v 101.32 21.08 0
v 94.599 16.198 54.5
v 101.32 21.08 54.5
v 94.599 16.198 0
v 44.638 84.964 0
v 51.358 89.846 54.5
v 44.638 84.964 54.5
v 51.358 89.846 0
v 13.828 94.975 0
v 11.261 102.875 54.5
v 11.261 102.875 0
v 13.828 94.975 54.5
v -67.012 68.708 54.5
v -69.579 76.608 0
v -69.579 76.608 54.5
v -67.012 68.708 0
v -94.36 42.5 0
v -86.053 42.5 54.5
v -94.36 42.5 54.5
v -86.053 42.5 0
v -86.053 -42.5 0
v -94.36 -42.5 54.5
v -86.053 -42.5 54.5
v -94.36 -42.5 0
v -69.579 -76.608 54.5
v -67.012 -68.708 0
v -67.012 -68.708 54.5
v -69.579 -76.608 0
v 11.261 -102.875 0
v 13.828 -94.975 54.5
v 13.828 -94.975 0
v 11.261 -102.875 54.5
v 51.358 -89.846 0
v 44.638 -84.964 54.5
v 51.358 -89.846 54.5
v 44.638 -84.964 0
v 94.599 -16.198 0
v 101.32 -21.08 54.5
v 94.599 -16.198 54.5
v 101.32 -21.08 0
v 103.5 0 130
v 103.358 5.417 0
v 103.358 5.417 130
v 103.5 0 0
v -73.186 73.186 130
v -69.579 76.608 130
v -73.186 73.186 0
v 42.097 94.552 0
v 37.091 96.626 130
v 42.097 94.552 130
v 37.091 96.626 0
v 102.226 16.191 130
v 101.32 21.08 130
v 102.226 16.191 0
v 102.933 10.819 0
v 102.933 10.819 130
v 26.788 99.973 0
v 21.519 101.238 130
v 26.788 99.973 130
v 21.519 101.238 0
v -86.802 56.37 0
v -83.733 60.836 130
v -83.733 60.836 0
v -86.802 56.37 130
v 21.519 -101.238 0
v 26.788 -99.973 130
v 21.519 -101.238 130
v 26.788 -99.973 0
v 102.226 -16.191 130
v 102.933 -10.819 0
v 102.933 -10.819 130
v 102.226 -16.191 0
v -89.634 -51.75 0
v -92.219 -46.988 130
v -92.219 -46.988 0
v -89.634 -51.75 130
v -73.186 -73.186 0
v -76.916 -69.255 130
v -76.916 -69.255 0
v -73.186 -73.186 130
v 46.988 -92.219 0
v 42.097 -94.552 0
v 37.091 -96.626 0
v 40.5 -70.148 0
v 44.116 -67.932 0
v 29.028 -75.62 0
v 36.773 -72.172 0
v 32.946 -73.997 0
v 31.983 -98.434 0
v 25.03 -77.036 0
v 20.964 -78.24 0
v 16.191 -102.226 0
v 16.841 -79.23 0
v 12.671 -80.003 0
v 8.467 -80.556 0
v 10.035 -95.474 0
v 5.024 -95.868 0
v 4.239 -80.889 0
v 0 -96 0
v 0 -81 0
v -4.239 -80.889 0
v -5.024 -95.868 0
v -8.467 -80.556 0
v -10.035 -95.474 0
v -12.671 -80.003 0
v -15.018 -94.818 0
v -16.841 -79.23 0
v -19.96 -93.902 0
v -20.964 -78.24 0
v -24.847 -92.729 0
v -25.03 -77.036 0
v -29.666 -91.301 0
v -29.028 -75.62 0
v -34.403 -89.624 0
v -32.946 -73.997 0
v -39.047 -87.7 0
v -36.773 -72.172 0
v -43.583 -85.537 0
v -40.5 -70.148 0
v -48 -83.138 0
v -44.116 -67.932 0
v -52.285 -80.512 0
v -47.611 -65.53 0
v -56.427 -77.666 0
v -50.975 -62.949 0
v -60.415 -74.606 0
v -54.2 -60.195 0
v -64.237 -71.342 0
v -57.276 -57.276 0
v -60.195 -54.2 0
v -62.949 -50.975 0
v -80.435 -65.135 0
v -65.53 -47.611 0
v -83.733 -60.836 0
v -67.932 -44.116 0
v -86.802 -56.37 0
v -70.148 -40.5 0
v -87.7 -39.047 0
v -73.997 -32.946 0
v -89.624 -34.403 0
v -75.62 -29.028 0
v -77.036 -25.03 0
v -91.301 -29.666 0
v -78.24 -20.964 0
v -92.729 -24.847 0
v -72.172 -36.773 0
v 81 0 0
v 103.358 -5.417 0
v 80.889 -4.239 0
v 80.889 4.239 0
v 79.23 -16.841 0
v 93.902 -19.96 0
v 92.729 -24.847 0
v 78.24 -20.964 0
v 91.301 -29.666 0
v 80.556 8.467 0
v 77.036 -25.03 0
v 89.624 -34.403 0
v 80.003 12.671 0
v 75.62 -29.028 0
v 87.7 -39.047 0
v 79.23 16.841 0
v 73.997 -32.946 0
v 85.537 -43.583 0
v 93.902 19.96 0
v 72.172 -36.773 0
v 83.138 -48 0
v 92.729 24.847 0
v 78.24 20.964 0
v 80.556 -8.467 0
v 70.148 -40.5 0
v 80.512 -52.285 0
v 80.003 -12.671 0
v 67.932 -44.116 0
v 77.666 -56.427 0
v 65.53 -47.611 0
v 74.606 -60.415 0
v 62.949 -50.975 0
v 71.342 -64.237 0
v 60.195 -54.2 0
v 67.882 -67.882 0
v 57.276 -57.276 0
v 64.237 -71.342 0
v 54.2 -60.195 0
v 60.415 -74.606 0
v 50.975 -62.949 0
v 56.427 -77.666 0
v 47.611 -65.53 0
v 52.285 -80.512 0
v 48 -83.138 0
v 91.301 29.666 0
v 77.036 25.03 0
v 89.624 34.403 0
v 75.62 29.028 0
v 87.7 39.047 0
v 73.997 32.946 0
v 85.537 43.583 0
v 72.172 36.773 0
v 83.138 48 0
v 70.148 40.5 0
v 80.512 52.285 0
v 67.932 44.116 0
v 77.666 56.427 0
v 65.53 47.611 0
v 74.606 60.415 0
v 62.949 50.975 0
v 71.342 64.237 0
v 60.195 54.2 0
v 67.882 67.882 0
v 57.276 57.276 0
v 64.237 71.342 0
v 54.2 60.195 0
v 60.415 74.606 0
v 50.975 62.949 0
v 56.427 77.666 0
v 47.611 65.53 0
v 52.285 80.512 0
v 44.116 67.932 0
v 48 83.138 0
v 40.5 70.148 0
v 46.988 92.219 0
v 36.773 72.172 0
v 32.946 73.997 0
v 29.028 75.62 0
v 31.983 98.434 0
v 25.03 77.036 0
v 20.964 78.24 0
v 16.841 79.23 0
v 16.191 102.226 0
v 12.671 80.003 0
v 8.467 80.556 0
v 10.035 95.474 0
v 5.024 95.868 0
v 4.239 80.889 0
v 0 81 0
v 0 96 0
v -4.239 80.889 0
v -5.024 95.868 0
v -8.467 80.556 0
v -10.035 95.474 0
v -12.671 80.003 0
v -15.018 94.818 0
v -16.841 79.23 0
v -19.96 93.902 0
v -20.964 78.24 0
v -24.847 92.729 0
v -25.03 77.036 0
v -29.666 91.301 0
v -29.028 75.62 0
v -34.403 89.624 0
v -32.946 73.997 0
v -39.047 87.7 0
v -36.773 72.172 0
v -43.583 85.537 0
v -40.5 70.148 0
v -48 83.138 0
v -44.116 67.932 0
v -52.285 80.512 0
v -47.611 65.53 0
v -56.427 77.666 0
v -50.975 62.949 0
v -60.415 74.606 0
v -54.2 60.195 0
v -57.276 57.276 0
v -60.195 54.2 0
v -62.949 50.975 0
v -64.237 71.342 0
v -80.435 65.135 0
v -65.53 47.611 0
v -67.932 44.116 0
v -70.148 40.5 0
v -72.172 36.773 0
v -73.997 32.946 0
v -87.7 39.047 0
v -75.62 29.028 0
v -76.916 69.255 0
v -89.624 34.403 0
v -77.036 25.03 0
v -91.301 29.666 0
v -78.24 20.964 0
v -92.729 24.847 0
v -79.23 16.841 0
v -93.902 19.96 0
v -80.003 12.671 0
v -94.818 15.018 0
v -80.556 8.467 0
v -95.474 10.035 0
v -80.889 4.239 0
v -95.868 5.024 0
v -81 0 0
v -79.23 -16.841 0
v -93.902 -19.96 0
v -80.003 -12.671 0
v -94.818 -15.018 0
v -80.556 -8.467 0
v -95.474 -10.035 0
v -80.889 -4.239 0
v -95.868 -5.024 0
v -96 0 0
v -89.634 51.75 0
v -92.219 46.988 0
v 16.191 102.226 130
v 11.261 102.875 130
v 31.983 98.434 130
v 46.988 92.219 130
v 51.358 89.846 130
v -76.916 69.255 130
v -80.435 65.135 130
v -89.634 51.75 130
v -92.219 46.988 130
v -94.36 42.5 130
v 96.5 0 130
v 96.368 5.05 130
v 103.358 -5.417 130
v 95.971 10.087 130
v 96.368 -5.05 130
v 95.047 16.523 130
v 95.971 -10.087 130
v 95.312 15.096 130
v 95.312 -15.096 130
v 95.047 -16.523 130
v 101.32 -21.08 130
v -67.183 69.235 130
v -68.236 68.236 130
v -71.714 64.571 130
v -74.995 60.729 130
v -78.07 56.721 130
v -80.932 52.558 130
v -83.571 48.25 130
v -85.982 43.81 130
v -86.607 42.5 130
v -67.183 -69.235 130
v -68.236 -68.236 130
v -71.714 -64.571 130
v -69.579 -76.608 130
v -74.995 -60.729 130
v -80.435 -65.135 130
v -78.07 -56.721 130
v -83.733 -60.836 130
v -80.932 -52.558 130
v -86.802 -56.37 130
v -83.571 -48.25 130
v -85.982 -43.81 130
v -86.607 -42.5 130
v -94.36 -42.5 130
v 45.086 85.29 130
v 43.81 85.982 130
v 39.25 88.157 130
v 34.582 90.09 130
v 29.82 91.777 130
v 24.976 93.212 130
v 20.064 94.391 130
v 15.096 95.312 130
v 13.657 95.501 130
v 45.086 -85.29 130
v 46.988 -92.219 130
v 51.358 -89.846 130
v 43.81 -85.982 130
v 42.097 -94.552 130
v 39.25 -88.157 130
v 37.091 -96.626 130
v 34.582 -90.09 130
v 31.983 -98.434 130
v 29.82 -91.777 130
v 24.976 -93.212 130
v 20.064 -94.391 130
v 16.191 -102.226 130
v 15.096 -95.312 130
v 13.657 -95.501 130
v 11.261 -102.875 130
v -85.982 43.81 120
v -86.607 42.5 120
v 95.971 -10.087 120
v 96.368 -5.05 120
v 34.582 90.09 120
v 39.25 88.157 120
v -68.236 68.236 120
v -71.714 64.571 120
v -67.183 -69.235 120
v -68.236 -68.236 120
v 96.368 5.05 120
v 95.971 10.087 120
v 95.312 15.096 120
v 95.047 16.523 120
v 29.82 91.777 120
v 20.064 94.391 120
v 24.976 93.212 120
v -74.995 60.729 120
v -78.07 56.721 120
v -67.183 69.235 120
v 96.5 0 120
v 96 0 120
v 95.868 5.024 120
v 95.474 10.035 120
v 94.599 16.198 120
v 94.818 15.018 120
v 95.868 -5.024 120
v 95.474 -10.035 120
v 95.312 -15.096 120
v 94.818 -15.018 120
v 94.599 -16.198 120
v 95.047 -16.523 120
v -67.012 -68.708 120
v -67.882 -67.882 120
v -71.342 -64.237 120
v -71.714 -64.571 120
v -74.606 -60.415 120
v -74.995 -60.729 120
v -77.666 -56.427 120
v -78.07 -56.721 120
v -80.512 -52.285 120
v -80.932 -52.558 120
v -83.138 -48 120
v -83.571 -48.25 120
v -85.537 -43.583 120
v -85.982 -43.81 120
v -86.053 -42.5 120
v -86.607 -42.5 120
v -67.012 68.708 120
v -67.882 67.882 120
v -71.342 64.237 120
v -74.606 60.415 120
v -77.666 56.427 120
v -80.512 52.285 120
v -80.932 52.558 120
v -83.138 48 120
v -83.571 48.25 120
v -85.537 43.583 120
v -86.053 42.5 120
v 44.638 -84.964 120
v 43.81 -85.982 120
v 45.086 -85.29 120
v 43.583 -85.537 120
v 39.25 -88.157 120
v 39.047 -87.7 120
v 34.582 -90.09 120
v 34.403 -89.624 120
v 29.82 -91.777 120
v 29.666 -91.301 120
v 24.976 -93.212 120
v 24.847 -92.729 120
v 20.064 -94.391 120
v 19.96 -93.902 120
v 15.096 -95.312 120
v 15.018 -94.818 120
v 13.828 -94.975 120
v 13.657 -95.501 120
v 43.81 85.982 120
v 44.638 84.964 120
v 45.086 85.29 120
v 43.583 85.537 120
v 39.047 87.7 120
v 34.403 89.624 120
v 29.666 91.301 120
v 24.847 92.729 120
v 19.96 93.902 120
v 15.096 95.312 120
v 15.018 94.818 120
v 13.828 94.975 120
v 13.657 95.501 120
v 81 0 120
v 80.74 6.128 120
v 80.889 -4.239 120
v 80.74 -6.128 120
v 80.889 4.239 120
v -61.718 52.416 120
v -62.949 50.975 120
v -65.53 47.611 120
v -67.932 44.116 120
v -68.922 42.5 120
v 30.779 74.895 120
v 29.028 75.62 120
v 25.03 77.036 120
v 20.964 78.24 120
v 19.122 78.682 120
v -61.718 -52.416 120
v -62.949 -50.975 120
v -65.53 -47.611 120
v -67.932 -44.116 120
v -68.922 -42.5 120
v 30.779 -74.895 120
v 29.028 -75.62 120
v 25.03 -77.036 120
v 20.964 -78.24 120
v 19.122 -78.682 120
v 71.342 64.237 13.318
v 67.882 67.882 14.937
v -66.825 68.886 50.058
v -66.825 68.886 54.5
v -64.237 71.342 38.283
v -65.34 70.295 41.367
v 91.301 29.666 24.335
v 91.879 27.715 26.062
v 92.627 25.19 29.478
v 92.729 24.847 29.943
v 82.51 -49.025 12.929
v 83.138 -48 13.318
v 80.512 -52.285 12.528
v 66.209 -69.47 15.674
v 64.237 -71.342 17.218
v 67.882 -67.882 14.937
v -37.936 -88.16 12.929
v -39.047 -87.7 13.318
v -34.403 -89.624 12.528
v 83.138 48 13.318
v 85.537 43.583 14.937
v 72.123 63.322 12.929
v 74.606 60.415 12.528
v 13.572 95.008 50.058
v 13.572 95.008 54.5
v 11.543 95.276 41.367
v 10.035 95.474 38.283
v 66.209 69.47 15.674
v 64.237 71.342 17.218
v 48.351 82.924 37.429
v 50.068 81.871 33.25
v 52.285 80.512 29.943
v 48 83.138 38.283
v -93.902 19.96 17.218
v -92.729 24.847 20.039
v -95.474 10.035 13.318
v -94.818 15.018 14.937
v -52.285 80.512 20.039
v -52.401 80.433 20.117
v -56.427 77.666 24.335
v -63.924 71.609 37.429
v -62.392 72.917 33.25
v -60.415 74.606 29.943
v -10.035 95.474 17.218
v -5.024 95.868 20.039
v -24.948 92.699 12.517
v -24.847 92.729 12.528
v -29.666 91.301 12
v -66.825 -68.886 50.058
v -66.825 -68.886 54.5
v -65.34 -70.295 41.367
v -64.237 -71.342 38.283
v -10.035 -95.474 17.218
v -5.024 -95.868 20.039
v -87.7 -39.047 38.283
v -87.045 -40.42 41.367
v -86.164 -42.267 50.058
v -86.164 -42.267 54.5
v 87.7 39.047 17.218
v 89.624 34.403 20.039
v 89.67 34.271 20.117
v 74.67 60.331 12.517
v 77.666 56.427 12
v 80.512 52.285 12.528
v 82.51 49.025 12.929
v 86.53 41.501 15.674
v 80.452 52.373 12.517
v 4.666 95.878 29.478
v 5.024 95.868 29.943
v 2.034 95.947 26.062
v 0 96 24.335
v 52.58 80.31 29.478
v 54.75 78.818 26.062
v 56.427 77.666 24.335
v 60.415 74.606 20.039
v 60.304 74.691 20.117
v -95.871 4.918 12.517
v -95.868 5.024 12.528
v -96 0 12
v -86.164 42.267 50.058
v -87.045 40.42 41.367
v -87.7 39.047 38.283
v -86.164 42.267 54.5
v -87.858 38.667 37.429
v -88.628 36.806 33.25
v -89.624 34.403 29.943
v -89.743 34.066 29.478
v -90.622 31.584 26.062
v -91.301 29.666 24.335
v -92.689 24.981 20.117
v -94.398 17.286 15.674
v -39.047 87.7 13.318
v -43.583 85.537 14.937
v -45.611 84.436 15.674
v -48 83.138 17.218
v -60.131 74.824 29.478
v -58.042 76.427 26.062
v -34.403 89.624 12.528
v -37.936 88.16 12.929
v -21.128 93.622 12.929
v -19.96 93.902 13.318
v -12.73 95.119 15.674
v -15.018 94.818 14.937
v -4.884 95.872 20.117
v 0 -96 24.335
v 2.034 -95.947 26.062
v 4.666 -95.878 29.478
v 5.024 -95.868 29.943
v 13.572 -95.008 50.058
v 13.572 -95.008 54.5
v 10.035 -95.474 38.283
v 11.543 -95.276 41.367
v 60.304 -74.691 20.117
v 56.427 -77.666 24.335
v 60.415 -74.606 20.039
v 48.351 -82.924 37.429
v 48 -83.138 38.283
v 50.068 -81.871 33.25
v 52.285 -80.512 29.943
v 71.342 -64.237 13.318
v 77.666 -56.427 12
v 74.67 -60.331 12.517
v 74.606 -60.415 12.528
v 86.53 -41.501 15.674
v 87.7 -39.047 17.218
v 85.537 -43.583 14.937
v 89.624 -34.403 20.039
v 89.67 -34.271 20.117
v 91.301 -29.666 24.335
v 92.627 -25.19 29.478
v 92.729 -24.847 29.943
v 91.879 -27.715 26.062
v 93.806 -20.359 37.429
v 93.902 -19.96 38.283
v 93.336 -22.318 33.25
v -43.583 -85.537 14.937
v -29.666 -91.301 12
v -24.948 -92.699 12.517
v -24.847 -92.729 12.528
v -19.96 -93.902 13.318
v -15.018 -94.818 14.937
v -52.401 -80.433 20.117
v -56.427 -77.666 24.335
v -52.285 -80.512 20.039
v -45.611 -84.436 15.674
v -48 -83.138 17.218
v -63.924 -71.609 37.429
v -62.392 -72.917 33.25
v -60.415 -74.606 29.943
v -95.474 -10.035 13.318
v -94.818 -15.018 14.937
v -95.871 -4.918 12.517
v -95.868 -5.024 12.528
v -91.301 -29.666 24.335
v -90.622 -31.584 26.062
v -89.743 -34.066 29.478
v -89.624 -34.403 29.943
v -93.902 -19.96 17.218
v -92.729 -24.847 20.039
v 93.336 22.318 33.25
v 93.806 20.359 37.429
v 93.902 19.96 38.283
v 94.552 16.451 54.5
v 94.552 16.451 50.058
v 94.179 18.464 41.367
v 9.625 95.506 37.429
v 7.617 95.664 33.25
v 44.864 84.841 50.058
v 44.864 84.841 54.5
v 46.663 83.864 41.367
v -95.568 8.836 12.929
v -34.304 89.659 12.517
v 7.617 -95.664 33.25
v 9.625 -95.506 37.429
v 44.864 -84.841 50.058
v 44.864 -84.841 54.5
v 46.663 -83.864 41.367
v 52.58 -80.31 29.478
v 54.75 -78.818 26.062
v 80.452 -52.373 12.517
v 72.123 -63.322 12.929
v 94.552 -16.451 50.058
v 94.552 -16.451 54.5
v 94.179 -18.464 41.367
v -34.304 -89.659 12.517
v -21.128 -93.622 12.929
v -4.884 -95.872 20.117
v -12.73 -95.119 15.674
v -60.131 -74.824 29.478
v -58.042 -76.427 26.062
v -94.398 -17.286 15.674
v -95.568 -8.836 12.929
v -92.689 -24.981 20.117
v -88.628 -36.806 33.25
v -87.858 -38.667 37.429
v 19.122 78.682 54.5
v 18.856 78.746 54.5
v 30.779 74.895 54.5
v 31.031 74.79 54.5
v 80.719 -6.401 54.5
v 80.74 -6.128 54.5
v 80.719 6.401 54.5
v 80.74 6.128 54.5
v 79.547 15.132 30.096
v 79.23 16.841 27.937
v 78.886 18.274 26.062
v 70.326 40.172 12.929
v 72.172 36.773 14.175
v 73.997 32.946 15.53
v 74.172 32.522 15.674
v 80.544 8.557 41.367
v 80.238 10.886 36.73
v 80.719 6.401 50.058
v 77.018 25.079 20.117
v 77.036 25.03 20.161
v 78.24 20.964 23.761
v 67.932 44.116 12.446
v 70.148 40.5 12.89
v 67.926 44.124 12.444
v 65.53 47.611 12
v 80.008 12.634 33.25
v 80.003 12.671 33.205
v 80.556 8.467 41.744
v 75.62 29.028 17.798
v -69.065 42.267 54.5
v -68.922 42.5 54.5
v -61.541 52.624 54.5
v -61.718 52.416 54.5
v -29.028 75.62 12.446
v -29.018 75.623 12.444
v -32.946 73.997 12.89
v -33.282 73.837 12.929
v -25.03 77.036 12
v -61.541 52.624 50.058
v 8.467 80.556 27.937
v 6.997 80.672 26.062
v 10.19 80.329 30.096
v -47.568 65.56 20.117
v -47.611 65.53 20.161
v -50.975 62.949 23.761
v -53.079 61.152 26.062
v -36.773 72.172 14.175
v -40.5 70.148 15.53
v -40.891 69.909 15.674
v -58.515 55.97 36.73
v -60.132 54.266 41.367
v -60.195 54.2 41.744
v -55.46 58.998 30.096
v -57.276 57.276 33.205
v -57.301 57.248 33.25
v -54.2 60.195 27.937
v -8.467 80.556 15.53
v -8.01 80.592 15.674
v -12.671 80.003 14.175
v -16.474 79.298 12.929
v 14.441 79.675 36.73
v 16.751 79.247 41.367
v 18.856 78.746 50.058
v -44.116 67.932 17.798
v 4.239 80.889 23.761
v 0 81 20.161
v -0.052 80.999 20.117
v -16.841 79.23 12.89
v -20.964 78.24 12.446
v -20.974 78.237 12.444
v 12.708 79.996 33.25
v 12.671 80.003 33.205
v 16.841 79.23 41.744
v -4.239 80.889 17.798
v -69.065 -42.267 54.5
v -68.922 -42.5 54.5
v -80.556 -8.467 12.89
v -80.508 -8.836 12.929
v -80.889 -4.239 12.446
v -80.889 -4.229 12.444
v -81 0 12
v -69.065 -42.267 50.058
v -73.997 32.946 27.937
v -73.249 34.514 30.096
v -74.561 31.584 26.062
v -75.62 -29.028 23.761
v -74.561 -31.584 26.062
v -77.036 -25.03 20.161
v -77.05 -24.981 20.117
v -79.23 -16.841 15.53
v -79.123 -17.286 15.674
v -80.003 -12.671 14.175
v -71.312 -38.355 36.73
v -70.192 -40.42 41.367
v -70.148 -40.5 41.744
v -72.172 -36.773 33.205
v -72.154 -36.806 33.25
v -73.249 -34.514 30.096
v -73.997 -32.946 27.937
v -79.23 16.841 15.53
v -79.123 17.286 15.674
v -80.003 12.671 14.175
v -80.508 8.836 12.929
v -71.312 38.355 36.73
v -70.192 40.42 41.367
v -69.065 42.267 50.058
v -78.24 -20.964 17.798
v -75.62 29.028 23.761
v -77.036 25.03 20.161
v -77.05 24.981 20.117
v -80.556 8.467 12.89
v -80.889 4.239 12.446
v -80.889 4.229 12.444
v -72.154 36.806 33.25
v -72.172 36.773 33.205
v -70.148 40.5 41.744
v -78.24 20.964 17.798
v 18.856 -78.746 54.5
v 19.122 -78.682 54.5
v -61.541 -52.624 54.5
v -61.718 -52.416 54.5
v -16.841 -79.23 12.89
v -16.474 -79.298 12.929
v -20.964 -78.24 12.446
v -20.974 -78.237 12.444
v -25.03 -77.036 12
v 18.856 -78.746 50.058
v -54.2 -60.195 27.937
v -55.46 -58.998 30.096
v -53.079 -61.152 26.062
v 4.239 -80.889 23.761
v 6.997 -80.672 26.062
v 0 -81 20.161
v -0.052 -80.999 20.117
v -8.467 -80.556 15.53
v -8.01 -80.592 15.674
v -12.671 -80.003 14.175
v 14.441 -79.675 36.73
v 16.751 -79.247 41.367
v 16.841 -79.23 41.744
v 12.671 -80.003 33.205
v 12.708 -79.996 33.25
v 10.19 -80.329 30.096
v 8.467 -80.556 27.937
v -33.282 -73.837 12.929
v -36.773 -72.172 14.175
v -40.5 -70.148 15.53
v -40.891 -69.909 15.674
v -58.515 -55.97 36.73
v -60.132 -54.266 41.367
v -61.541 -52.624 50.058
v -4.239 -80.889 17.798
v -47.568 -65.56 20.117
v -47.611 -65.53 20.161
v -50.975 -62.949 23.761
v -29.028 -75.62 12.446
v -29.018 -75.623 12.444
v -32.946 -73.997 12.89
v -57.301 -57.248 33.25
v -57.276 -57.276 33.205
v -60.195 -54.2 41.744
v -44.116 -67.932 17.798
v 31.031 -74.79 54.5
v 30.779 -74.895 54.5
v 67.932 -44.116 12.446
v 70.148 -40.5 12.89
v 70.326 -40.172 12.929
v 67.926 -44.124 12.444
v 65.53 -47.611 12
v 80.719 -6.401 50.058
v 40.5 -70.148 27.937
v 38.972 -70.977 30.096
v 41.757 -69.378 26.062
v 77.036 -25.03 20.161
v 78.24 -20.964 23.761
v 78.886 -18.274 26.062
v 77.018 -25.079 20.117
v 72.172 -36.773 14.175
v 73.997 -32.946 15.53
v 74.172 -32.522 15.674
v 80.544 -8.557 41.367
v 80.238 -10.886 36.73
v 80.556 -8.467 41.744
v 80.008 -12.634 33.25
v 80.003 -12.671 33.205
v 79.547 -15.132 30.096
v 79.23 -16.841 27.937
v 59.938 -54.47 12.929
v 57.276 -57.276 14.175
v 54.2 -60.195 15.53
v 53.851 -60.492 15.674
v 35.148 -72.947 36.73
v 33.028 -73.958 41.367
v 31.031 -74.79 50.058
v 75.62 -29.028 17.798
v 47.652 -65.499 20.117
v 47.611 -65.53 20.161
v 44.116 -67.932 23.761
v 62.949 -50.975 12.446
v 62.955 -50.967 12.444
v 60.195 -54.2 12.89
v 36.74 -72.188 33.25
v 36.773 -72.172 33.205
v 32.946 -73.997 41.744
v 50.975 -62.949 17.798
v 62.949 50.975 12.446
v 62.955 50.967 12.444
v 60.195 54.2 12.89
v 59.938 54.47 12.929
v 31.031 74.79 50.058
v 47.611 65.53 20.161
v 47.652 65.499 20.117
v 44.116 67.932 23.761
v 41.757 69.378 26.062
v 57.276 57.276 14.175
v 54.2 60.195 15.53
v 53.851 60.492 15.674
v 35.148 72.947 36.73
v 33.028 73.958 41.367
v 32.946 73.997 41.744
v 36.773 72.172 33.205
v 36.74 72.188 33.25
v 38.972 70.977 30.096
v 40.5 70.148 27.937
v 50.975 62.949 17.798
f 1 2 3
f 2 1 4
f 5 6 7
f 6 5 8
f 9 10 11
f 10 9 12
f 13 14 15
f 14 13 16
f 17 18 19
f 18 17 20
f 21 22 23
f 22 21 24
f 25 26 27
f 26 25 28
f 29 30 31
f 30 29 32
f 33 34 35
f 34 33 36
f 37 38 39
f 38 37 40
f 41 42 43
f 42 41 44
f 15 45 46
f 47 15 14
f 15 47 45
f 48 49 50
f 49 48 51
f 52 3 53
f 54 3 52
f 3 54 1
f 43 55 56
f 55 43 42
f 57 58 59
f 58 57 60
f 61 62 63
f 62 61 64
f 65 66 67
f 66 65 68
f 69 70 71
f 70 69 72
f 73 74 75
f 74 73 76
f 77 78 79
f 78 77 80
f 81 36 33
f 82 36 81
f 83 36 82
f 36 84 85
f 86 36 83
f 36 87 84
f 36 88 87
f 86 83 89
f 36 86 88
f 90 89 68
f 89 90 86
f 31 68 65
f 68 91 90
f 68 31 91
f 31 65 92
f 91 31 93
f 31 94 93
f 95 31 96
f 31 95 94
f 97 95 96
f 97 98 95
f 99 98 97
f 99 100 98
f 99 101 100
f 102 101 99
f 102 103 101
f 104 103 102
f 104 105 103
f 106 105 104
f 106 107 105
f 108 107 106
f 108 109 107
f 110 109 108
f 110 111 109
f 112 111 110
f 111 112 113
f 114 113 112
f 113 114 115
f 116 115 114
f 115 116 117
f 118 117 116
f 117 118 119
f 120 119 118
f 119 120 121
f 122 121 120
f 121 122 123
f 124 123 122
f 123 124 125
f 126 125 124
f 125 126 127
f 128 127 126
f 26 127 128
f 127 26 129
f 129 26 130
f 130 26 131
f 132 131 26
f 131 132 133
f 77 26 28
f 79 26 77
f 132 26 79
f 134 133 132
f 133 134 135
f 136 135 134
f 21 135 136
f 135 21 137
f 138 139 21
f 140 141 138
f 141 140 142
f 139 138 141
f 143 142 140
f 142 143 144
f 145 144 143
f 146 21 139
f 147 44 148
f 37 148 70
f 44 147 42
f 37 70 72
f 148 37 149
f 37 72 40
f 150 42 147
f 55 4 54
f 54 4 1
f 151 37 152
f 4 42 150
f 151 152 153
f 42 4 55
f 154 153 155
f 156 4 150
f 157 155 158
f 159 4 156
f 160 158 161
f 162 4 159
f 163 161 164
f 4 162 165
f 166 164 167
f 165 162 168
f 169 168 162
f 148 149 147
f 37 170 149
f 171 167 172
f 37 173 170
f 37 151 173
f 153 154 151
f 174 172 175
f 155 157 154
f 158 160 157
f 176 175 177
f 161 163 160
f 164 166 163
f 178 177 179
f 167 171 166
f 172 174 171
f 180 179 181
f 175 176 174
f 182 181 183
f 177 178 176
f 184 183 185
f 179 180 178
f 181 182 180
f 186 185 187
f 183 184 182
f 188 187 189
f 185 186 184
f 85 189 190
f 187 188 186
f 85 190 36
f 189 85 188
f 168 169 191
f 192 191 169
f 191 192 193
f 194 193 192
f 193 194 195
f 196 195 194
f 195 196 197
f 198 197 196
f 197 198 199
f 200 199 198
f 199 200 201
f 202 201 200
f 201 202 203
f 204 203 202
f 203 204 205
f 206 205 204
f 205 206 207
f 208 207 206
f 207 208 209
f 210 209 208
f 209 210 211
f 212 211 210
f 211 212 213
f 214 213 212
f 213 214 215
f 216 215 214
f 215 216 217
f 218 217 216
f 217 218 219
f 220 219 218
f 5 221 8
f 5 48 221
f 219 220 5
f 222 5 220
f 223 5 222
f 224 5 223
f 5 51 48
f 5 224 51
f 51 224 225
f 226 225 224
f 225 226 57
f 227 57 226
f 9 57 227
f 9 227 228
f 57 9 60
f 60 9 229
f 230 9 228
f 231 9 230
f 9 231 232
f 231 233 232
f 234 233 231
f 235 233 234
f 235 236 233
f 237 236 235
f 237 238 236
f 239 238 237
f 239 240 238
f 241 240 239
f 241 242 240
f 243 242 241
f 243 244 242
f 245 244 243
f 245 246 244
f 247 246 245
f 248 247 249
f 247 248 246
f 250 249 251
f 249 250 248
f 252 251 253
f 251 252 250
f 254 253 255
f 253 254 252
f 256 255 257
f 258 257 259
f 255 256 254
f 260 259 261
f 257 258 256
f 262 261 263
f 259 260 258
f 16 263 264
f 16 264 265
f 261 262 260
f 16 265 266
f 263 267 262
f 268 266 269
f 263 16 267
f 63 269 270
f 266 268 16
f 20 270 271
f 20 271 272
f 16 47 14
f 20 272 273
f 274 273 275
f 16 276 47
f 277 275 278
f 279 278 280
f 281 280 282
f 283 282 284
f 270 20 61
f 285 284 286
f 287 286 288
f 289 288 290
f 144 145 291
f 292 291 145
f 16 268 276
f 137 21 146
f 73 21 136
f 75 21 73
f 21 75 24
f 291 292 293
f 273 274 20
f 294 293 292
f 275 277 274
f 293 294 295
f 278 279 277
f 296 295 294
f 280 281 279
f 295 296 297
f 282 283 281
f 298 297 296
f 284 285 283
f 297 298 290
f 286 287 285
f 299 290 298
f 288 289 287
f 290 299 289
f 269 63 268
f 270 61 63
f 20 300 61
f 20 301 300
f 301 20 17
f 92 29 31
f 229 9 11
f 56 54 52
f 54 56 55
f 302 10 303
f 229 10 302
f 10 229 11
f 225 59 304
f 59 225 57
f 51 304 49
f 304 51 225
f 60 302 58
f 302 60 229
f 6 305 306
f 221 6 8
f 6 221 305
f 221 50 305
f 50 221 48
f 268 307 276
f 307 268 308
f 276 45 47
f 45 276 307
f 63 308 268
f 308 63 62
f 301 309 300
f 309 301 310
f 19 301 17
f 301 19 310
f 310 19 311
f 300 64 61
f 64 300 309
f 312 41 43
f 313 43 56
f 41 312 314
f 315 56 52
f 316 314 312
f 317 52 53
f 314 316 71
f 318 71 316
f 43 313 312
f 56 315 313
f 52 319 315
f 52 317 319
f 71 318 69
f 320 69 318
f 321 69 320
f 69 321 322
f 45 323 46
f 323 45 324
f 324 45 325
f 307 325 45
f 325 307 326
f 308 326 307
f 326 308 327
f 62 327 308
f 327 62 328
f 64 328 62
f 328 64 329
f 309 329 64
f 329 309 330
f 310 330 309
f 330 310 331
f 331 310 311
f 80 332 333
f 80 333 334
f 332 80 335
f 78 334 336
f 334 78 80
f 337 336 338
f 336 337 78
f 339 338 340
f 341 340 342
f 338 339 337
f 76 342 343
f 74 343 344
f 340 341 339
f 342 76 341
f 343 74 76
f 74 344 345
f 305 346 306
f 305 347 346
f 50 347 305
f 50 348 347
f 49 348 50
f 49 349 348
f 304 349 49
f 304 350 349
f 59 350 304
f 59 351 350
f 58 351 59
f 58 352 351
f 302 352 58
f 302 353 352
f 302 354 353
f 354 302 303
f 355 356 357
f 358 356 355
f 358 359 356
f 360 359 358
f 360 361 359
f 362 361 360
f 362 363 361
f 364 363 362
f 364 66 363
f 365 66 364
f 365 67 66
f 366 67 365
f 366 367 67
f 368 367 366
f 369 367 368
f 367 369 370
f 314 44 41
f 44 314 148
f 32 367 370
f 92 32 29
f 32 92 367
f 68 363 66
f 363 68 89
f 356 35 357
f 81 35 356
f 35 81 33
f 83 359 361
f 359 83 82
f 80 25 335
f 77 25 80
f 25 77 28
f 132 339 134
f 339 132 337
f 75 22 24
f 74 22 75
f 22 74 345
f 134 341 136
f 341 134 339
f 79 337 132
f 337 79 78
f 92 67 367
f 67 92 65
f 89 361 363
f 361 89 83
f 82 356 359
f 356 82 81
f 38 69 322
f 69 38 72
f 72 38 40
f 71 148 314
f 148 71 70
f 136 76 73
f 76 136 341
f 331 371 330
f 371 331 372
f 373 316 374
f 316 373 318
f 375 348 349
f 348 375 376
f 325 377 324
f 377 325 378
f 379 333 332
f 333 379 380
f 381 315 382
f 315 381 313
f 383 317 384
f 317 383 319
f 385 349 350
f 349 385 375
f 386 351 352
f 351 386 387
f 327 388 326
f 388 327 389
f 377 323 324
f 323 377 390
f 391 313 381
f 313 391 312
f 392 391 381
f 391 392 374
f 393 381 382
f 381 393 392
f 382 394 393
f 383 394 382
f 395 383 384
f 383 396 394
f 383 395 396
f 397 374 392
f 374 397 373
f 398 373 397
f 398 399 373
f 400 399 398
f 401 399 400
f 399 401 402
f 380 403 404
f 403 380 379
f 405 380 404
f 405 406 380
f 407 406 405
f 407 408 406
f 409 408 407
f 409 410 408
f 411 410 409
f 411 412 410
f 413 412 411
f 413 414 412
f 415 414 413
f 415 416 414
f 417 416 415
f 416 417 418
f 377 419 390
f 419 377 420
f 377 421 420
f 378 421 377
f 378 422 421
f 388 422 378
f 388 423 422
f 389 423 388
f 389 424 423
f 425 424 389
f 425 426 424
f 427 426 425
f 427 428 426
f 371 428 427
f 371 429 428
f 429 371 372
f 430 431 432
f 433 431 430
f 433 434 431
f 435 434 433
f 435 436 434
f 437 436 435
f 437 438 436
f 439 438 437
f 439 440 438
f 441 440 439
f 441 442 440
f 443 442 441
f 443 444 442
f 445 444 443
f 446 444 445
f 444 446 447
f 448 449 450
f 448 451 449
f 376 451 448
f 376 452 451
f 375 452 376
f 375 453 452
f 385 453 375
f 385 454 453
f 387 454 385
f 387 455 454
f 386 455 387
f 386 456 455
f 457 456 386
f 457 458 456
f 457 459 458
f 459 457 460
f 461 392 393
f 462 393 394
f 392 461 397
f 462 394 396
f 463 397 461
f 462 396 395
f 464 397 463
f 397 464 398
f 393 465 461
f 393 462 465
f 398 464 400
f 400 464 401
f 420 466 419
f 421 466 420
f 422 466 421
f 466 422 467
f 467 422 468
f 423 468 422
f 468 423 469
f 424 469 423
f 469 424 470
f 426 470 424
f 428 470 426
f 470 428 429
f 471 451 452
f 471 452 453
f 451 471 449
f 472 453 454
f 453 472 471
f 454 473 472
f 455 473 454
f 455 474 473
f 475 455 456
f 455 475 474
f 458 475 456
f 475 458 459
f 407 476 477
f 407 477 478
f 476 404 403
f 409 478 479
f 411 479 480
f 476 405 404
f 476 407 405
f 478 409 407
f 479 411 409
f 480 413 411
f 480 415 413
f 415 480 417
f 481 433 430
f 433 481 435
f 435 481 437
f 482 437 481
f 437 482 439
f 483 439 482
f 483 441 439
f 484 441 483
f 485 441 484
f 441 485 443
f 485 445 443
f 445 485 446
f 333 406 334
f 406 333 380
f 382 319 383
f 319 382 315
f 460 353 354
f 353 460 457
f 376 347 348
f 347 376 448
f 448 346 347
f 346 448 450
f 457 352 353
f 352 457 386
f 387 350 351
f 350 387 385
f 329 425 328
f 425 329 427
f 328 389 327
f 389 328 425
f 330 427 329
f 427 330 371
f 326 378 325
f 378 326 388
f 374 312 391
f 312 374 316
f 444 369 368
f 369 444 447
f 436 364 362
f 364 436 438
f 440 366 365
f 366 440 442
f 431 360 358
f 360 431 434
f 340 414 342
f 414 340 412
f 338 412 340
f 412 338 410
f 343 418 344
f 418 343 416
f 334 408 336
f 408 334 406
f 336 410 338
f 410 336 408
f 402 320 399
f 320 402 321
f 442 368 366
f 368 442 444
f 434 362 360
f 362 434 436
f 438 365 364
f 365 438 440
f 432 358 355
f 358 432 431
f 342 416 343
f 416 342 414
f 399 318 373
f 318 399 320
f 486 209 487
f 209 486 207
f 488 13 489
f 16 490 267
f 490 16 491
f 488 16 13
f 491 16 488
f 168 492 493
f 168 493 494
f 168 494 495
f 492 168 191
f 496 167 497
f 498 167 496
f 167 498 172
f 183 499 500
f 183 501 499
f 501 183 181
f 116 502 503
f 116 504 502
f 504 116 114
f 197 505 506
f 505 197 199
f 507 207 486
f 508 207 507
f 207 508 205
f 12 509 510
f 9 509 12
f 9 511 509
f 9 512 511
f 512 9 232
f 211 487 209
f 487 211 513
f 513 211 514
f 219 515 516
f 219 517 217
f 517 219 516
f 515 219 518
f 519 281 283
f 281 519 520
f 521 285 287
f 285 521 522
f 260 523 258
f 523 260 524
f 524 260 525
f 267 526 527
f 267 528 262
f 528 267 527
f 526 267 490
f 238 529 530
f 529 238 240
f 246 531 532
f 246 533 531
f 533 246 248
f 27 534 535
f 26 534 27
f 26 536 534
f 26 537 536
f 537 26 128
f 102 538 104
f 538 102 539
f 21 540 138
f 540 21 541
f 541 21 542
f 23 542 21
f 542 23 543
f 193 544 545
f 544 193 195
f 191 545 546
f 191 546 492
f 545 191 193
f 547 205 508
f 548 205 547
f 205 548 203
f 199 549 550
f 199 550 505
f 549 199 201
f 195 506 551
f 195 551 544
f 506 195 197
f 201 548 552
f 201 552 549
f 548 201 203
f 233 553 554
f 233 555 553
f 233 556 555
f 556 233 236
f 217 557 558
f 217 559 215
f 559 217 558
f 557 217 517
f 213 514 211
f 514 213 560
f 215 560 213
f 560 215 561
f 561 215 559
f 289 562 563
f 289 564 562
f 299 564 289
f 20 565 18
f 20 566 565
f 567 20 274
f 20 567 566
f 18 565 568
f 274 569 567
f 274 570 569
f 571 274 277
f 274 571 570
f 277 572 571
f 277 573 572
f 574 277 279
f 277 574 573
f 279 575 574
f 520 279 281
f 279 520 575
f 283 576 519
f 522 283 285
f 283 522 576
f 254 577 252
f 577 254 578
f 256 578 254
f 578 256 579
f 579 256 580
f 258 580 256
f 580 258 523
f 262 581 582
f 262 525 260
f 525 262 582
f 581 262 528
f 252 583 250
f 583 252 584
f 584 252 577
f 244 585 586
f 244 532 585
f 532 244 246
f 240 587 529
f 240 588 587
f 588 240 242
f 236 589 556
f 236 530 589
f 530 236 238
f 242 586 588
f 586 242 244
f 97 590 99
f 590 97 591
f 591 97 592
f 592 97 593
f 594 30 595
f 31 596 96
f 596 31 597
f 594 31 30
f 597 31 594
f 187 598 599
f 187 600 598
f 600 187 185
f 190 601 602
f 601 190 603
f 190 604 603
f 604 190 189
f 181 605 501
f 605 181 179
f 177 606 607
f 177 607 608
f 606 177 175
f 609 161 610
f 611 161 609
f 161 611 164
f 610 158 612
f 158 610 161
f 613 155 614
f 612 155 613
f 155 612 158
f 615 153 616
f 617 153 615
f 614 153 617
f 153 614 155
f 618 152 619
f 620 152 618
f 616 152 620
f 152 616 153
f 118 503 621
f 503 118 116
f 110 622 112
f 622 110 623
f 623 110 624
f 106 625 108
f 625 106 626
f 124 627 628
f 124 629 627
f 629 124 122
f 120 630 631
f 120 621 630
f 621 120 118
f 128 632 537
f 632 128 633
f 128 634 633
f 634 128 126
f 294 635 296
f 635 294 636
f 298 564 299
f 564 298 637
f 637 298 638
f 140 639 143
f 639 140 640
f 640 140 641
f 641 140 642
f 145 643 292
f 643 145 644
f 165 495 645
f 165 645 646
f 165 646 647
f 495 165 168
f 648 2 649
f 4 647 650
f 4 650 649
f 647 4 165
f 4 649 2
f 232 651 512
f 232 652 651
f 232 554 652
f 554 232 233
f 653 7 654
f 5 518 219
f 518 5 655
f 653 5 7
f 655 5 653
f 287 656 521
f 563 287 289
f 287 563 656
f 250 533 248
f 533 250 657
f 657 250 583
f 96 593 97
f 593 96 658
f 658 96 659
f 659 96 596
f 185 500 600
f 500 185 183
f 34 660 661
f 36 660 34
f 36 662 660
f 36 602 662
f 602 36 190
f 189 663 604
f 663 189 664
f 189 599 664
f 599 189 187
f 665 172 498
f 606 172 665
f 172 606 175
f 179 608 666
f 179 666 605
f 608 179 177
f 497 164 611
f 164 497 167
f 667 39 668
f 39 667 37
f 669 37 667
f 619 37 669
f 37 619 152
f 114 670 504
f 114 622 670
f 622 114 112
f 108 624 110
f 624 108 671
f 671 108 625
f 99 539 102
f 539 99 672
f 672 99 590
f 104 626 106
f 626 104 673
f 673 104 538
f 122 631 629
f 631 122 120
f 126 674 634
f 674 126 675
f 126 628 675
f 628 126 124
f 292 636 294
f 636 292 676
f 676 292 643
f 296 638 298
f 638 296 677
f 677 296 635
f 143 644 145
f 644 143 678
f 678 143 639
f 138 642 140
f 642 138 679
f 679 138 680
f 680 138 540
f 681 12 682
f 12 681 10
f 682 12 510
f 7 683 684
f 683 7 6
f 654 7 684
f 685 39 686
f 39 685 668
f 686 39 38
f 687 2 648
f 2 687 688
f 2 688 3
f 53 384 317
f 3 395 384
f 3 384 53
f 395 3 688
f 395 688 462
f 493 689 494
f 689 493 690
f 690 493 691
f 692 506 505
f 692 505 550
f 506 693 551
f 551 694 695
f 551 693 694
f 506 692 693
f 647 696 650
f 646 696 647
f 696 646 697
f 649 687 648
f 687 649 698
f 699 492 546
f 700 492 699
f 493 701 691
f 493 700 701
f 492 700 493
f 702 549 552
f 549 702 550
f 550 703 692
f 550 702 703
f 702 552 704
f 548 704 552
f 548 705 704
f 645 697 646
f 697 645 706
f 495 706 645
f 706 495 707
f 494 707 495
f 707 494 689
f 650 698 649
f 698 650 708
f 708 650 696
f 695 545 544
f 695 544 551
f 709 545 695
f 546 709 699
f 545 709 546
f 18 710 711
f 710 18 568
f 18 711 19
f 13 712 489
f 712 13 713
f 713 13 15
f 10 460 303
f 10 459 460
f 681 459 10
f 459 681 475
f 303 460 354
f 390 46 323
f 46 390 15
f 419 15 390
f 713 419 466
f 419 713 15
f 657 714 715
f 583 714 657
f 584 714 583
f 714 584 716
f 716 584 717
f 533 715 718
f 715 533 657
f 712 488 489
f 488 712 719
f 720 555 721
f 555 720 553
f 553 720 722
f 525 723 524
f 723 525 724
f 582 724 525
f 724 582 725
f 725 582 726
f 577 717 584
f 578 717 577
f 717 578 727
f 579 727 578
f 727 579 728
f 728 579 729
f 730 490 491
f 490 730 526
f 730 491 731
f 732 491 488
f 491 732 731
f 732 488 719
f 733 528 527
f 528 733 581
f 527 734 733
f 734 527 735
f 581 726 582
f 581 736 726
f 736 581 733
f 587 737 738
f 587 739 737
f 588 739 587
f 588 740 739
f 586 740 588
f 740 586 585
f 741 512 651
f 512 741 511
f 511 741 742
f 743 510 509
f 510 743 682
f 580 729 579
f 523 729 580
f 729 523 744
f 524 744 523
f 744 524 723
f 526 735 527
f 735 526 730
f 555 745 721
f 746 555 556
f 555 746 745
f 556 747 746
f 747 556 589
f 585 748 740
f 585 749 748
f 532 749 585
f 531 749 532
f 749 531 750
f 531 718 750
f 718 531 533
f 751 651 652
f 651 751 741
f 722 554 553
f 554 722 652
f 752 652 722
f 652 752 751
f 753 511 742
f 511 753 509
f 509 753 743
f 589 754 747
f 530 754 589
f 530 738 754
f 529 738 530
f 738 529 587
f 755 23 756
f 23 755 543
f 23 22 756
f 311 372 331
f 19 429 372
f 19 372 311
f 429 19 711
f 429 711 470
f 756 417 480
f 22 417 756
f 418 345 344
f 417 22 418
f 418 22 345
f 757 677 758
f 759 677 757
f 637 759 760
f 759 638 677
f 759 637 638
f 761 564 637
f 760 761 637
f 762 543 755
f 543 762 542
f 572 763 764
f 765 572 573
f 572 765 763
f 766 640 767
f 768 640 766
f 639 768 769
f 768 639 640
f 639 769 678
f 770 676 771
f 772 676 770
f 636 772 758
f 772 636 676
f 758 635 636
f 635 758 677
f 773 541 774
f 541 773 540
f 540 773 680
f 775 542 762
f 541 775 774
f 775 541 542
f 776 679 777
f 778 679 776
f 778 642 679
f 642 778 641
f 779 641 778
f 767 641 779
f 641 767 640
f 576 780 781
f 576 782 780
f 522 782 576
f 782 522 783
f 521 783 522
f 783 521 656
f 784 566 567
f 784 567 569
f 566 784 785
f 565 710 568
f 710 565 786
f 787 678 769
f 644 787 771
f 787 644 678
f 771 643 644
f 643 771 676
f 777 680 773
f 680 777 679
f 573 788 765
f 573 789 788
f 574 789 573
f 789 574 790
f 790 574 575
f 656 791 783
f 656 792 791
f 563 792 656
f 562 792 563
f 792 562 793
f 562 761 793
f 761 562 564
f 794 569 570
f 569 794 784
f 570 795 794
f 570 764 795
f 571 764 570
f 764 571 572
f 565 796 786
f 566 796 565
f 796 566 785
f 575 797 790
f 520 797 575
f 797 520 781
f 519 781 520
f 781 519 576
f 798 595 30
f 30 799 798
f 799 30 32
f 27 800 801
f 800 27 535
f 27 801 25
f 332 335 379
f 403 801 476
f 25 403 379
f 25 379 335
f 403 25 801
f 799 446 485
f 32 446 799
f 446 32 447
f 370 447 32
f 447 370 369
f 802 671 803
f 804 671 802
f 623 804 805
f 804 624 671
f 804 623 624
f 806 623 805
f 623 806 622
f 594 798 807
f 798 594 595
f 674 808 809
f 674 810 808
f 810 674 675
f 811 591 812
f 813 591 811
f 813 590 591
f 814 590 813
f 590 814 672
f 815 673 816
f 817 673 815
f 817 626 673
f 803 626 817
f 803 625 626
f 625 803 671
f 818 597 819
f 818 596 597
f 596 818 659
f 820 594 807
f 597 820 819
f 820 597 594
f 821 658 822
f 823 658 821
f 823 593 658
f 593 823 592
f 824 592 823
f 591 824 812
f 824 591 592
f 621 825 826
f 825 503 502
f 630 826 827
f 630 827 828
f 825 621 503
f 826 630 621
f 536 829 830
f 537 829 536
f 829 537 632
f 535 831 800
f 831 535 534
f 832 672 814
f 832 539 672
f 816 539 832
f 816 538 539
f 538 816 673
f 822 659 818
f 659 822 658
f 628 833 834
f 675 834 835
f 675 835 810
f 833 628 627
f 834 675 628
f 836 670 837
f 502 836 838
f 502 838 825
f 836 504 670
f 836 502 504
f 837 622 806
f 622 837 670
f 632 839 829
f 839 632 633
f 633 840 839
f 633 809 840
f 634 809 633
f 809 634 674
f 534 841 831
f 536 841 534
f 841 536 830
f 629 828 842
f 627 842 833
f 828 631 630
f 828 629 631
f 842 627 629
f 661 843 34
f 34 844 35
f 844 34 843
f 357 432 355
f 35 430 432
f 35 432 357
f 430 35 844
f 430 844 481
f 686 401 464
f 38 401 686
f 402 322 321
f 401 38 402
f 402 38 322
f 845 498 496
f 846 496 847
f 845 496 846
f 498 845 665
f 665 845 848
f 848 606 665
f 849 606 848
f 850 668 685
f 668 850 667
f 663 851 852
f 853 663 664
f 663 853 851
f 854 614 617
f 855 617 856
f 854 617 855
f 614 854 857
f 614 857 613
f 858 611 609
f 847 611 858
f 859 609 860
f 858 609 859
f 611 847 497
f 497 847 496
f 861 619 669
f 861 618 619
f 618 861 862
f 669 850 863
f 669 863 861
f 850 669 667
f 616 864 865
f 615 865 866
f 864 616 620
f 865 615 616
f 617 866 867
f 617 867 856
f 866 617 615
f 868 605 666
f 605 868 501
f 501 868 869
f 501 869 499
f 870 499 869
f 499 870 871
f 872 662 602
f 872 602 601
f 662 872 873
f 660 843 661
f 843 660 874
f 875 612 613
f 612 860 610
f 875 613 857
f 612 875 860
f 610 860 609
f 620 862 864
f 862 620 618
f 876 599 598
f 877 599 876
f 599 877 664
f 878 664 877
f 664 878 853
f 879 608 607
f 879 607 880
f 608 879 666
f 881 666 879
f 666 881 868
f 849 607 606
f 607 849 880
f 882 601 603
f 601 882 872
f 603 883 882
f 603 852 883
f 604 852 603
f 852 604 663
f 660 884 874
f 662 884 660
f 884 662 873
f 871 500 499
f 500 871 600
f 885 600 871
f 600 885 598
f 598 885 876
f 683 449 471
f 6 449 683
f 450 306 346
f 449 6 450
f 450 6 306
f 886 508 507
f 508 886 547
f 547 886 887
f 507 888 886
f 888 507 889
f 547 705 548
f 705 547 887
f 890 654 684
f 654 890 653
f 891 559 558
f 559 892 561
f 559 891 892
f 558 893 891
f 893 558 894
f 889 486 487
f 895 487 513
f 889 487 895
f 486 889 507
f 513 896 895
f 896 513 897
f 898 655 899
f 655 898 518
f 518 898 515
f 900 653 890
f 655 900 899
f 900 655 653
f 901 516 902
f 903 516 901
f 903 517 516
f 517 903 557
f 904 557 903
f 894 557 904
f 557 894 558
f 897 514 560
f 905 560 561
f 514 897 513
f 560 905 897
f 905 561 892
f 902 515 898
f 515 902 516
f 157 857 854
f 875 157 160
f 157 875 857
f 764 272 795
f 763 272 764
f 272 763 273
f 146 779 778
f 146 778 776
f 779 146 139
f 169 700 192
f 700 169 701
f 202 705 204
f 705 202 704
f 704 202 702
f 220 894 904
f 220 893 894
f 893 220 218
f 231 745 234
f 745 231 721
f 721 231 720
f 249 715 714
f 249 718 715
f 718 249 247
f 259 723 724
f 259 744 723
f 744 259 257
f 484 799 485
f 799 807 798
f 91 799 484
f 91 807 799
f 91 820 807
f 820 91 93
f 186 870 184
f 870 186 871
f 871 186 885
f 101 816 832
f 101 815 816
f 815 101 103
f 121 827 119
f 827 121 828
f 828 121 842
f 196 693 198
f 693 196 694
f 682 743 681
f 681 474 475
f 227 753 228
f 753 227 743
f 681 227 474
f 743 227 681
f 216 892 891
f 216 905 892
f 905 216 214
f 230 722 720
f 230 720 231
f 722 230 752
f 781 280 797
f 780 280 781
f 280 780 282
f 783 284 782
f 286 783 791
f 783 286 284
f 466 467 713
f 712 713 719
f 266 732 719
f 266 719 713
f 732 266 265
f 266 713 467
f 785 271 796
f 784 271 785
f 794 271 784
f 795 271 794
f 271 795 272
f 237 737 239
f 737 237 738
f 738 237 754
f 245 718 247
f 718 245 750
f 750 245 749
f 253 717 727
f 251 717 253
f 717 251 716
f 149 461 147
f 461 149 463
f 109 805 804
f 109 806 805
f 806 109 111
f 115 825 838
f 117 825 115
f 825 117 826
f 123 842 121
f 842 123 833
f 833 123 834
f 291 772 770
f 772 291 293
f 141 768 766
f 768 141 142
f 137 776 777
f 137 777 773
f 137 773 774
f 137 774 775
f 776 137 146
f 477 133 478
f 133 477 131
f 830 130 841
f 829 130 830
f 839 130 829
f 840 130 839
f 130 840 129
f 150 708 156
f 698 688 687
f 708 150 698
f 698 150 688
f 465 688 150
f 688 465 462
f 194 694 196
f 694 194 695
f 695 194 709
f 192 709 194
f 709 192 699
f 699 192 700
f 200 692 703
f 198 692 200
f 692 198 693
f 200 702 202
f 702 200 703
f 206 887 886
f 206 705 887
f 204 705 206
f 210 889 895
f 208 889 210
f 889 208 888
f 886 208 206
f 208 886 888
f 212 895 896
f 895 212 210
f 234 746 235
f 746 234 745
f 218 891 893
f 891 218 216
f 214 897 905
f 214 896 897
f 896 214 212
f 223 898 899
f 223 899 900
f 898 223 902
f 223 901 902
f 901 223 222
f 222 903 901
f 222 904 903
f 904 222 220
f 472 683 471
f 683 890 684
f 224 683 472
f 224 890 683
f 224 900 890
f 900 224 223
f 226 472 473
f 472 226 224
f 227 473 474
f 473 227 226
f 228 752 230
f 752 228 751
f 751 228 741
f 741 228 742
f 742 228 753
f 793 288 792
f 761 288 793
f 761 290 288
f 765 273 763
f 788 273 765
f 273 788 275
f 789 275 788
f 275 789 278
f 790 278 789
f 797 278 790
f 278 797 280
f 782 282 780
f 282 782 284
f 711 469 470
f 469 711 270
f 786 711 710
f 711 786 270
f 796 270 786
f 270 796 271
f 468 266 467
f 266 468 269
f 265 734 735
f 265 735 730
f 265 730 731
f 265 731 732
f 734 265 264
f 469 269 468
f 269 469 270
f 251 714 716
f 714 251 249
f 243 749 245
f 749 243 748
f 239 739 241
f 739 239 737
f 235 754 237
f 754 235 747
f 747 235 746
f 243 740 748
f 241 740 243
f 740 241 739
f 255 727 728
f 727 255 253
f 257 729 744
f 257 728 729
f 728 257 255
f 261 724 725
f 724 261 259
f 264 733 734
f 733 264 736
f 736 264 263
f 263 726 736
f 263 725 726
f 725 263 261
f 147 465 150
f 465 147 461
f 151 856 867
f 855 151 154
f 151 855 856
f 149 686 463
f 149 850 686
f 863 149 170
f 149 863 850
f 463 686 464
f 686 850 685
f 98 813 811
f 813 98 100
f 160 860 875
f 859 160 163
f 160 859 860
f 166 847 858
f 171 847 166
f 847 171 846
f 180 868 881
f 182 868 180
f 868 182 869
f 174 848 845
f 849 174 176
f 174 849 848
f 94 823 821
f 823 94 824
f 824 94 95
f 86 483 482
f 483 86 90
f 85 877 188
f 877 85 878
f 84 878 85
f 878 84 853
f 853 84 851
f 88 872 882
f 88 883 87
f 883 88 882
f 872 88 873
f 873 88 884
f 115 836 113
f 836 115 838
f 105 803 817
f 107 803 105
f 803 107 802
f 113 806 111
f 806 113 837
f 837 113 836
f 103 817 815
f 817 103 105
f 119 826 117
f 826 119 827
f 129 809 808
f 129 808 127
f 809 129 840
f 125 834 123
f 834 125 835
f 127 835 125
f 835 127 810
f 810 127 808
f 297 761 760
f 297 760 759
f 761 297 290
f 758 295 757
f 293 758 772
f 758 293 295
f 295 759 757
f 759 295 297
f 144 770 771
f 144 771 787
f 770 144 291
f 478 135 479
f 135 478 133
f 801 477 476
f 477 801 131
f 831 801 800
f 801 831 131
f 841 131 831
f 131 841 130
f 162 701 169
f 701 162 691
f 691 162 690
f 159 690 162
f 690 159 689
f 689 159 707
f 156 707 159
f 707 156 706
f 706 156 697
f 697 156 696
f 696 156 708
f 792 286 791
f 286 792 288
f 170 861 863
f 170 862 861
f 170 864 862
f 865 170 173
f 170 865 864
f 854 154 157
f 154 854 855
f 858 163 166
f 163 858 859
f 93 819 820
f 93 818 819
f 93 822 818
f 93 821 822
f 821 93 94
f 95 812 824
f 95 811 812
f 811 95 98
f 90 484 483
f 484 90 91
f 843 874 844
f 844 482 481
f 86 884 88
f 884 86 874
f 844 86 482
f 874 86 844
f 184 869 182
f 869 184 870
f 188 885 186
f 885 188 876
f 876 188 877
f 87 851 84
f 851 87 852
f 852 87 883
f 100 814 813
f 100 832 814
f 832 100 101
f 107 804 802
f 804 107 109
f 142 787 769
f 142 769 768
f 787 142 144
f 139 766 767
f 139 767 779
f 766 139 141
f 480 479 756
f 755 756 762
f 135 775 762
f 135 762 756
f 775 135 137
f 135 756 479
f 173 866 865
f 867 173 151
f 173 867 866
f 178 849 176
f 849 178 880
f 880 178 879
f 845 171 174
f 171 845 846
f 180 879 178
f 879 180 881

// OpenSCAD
// file: nutsandbolts/data-access.scad
// Norm Nuts and Bolts - a OpenSCAD library
// Copyright (C) 2012  Johannes Kneer

// This program is free software: you can redistribute it and/or modify
// it under the terms of the GNU General Public License as published by
// the Free Software Foundation, either version 3 of the License, or
// (at your option) any later version.

// This program is distributed in the hope that it will be useful,
// but WITHOUT ANY WARRANTY; without even the implied warranty of
// MERCHANTABILITY or FITNESS FOR A PARTICULAR PURPOSE.  See the
// GNU General Public License for more details.

// You should have received a copy of the GNU General Public License
// along with this program.  If not, see <http://www.gnu.org/licenses/>.


// DATABASE ACCESS FUNCTIONS AND CONSTANTS



// == CONSTANTS ==

// screw table access keys
_NB_S_DESC            = 0;
_NB_S_FAMKEY			 = 1;
_NB_S_LENGTH          = 2;
_NB_S_NOTHREAD_LENGTH = 3;

_NB_F_DESC			 = 0;
_NB_F_OUTER_DIA       = 1;
_NB_F_INNER_DIA       = 2;
_NB_F_LEAD            = 3;
_NB_F_KEY             = 4;
_NB_F_KEY_DEPTH       = 5;
_NB_F_HEAD_HEIGHT     = 6;
_NB_F_HEAD_DIA        = 7;
_NB_F_NUT_KEY         = 8;
_NB_F_NUT_HEIGHT      = 9;


// == FUNCTIONS ==

// _get_screw("descriptor")   with descriptor = M8x25
//   find the line for a general object in the data matrix

function _get_screw(n) = data_screw[search([n], data_screw)[0]];
function _get_screw_fam(n) = data_screw_fam[search([_get_screw(n)[_NB_S_FAMKEY]], data_screw_fam)[0]];

function _get_fam(n) = data_screw_fam[search([n], data_screw_fam)[0]];


// _get_XXXXX("descriptor") functions
// find a single property in the database

function _get_desc(n)        = _get_screw(n)[_NB_S_DESC];
function _get_famkey(n)         = _get_screw(n)[_NB_S_FAMKEY];
function _get_length(n)      = _get_screw(n)[_NB_S_LENGTH];
function _get_nt_length(n)   = _get_screw(n)[_NB_S_NOTHREAD_LENGTH];

function _get_outer_dia(n)   = _get_screw_fam(n)[_NB_F_OUTER_DIA];
function _get_inner_dia(n)   = _get_screw_fam(n)[_NB_F_INNER_DIA];
function _get_lead(n)        = _get_screw_fam(n)[_NB_F_LEAD];
function _get_head_height(n) = _get_screw_fam(n)[_NB_F_HEAD_HEIGHT];
function _get_head_dia(n)    = _get_screw_fam(n)[_NB_F_HEAD_DIA];
function _get_nut_key(n)     = _get_screw_fam(n)[_NB_F_NUT_KEY];
function _get_nut_height(n)  = _get_screw_fam(n)[_NB_F_NUT_HEIGHT];
// file: screws.scad
include <nutsandbolts/cyl_head_bolt.scad>;

// get screw
function get_screw(name) =
  // different screws
  let(screws = [
    // screw name; screw diameter; countersink parameter (head diameter, head depth)
    ["M3", 3, [6, 4.5]],
    ["4-40", 2.9, [5.3, 4.5]],
    ["M4", 4, [8, 5.5]], // NOTE: counter sink dimensions not confirmed
    ["M5", 5, [10, 6.5]], // NOTE: counter sink dimensions not confirmed
    ["1/4-20", 6.35, [13.50, 4.09]] // NOTE: dimensions from mcmaster carr https://www.mcmaster.com/#92210a537/=1did9kw
  ])
  screws[search([name], screws)[0]];

// make a machine screw
// @param name which screw
// @param length how long to make the hole maximally
// @param countersink whether to countersink the screw
// @param tolerance what tolerance to add (in mm) to the screw radius
// @param stretch how much to stretch (in mm) the radius in the x direction (to account for collapse in vertical printing), added on top of the tolerance
// @param z_plus how much thicker to make shape in z (for cutouts)
// @param fn $fn parameter
module machine_screw (name, length, countersink = true, tolerance = 0.15, stretch = 0, z_plus = 0, fn = 30) {
  // parameters
  screw = get_screw(name);
  screw_d = screw[1]; // diameter
  screw_cs = screw[2]; // counter snk
  if (countersink && screw_cs[1] > length) {
    echo("warning - length is shorter than countersink cutout");
  }

  union() {
    translate([0, 0, -z_plus])
      resize([screw_d+2*tolerance+2*stretch, 0, 0])
        cylinder(h=length+2*z_plus, d=screw_d+2*tolerance, center=false, $fn=fn);
    if (countersink) {
      translate([0, 0, -z_plus])
        resize([screw_cs[0]+2*stretch, 0, 0])
          cylinder(h=screw_cs[1], d1=screw_cs[0], d2=0, center=false, $fn=fn);
    }
  }
}

// make a threaded machine screw --> uses the https://github.com/JohK/nutsnbolts library
// @param name which screw
// @param length how long to make the hole maximally
// @param countersink whether to countersink the screw
// @render_threads true/false whether to render the threads, set the global $render_threads = true; to turn on globally
module threaded_machine_screw (name, length, countersink = false, render_threads = $render_threads) {
  if (countersink) {
    echo("warning - countersink not yet implemented for threaded machine screws");
    // note: this should be possible with the dimensions from the screws library for head diameter and head height!
  }
  translate([0, 0, length])
  if (render_threads) {
    hole_threaded(name = name, thread = "modeled", l = length);
  } else {
    hole_threaded(name = name, thread = "no", l = length);
  }
}

// examples
color("yellow") machine_screw("M3", 5, countersink = false);
color("green") translate([0, 10, 0]) machine_screw("M3", 10);
color("purple") translate([0, 20, 0]) machine_screw("M3", 5, tolerance = 0.5, stretch = 0.5);
color("red") translate([0, -10, 0]) machine_screw("M4", 8);
color("blue") translate([0, -20, 0]) machine_screw("M4", 3, z_plus = 1);



// get hex nut
function get_hexnut(name) =
  // different nuts
  let(nuts = [
    // nut name; nut width (not the radius!); nut thickness
    ["M3", 5.5, 2.4],
    ["M4", 7, 3.2],
    ["M5", 8, 4]
  ])
  nuts[search([name], nuts)[0]];


// make a hexnut
// @param name which hexnut
// @param tolerance what tolerance to add (in mm) to the screw radius
// @param stretch how much to stretch (in mm) the radius in the x direction (to account for collapse in vertical printing), added on top of the tolerance
// @param z_plus how much thicker to make shape in z (for cutouts)
// @param align whether to align the hexnut to the "bottom" (default), "center" or "top" of the current location (not the bottom)
module hexnut (name, tolerance = 0.025, stretch = 0, z_plus = 0, screw_hole = true, align = "bottom") {
  nut = get_hexnut(name);
  nut_d = nut[1]/cos(180/6)+2*tolerance; // diameter
  nut_h = nut[2]+2*z_plus; // thickness
  move_z = (align == "top") ? [0, 0, -nut[2]] : ((align == "center") ? [0, 0, -nut[2]/2] : [0, 0, 0]);
  translate([0, 0, -z_plus])
    // apply stretch to whole shape
    resize([nut_d+2*stretch, 0, 0])
      difference() {
        translate(move_z) cylinder(h=nut_h, d=nut_d, center=false, $fn=6);
        if (screw_hole) {
          // generating screw hole with default tolerance
          translate(move_z) machine_screw(name, nut_h, z_plus = 0.1, countersink = false);
        }
      }
}

// examples
color("yellow") translate([10, 0, 0]) hexnut("M3");
color("green") translate([10, 10, 0]) hexnut("M3", z_plus = 0.15);
color("purple") translate([10, 20, 0]) hexnut("M3", 5, tolerance = 0.5, stretch = 1);
color("red") translate([10, -10, 0]) hexnut("M4");
color("blue") translate([10, -20, 0]) hexnut("M4", screw_hole = false);
// file: utils.scad
// common convenience functions and modules
use <screws.scad>;

// x/y but not z centered cube (regular center=true also centered z)
module xy_center_cube (size) {
  translate([-size[0]/2, -size[1]/2, 0])
  cube(size, center=false);
}

xy_center_cube([40, 20, 4]);


// x/y center cube with feet
// @param feet how many feet to add
// @param foot_height what the height of each foot is (in mm)
// @param tolerance what tolerance to build into the feet to make sure stacking works
// @param stackable whether it should be stackable or not
module xy_center_cube_with_feet (size, feet = 2, foot_height = 5, tolerance = 0.3, stackable = true) {
  foot_d = foot_height/cos(180/6);
  foot_list = [for (i = [1 : 1 : feet]) i];
  foot_spacing = size[0]/(2*feet);
  difference() {
    union() {
      translate([-size[0]/2, -size[1]/2, 0])
        cube(size, center=false);

      // add feet
      for(i = foot_list)
        translate([-size[0]/2 + (2*i - 1) * foot_spacing, - size[1]/2, 0])
          rotate([0, 0, 0])
            cylinder(h=size[2] - tolerance, d=foot_d, $fn=6, center = false);
    }
    if (stackable) {
      // add feet cutout
      z_plus = 0.1; // z plus for cutouts
      for(i = foot_list)
        translate([-size[0]/2 + (2*i - 1) * foot_spacing, + size[1]/2, -z_plus])
          rotate([0, 0, 0])
            cylinder(h=size[2]+2*z_plus, d=foot_d+tolerance, $fn=6, center = false);
    }
  }
}

translate([0, 40, 0])
  color("green")
    xy_center_cube_with_feet([40, 20, 4]);


translate([0, -40, 0])
  color("red")
    xy_center_cube_with_feet([80, 20, 4], feet = 5, foot_height = 6, stackable = false);


// standard attachment for a rectangular module affixed on top of a board
// @param thickness how thick base board is
// @param screws array of screw parameters (type, location x, location y, tolerance)
// @param block array of cube parameters (length, width, offset from base board, thickness)
// @param location central point of the cutout
// @param rotation how much to rotate
// @param show whether to show cube (not intended for printing)
module block_attachment (thickness, screws, block, location = [0,0,0], rotation = [0,0,0], show = false) {
  // parameters
  z_plus = 0.1; // how much thicker to make cutouts in z

  difference() {
    union() {
      children(0);
      if (show) {
        // cube outline (not printed)
        translate(location) rotate(rotation)
          translate([0, 0, thickness+block[2]])
            #xy_center_cube([block[0], block[1], block[3]]);
      }
    }

    translate(location)
      rotate(rotation) {
        // screw holes
        for(x=[-1, 1])
          for(y=[-1, 1])
            translate([x*screws[1], y*screws[2], 0])
              machine_screw(screws[0], thickness+block[0]+block[1], tolerance = screws[3], z_plus = z_plus);
      }
  }
}

translate([80, 30, 0])
  color("blue")
    block_attachment(10, ["M3", 15, 5, 0.2], [40, 20, 5, 10], show = true)
      xy_center_cube([60, 30, 10]);

translate([80, -30, 0])
  color("blue")
    block_attachment(10, ["M3", 15, 5, 0.2], [40, 20, 5, 10], show = false)
      xy_center_cube([60, 30, 10]);
// main file
use <utils.scad>;

// make headplate holder
// @param holder_height the height of the holder
// @param rim_height the height of the rim on top of the holder
module headplate_holder(holder_height = 120, rim_height = 10) {

  // general settings
  z_plus = 0.1; // how much thicker to make cutouts in z

  // holder
  holder_d = 192; // holder diameter (190 is actual headplate)
  holder_thickness = 15; // holder chickness
  base_h = 12; // base height

  // holder rim
  rim_thickness = 7.5; // thickness of the rim
  rim_cutout_tolerance = 1; // extra thickness on cutout to ensure stackability

  // side cutout
  cutout_x = 85; // x location of cutouts
  cutout_w = 85; // width of the cutout
  cutout_w_d_scale = 1; // how much the angled support of the pillars are squashed

  difference() {

    union() {
      // cylinder itself
      cylinder(h=holder_height, d=holder_d, $fn = 120);

      // rims
      difference() {
        cylinder(h=holder_height+rim_height, d=holder_d+2*rim_thickness, $fn = 120);
        // side cut outs
        for (r = [0:5])
          rotate(36+r*72)
            translate([cutout_x, 0, -z_plus])
              xy_center_cube([holder_d, cutout_w, holder_height+rim_height+2*z_plus]);
        // top cutout
        translate([0, 0, holder_height])
          cylinder(h=rim_height+z_plus, d=holder_d+rim_cutout_tolerance, $fn=120);
      }
    }

    // center hole cutout
    translate([0, 0, -z_plus])
      cylinder(h=holder_height+2*z_plus, d=holder_d - 2*holder_thickness, $fn=120);


    // side walls cutout
    for (r = [0:5])
      rotate(36+r*72)
        translate([cutout_x, 0, base_h+cutout_w_d_scale*cutout_w/2])
          union() {
            xy_center_cube([holder_d, cutout_w, holder_height]);
            translate([-holder_d/2, 0, 0])
              rotate([0,90,0])
                scale([cutout_w_d_scale, 1.0, 1.0])
                  cylinder(d=cutout_w, h=holder_d);
          }
  }


}



headplate_holder();
